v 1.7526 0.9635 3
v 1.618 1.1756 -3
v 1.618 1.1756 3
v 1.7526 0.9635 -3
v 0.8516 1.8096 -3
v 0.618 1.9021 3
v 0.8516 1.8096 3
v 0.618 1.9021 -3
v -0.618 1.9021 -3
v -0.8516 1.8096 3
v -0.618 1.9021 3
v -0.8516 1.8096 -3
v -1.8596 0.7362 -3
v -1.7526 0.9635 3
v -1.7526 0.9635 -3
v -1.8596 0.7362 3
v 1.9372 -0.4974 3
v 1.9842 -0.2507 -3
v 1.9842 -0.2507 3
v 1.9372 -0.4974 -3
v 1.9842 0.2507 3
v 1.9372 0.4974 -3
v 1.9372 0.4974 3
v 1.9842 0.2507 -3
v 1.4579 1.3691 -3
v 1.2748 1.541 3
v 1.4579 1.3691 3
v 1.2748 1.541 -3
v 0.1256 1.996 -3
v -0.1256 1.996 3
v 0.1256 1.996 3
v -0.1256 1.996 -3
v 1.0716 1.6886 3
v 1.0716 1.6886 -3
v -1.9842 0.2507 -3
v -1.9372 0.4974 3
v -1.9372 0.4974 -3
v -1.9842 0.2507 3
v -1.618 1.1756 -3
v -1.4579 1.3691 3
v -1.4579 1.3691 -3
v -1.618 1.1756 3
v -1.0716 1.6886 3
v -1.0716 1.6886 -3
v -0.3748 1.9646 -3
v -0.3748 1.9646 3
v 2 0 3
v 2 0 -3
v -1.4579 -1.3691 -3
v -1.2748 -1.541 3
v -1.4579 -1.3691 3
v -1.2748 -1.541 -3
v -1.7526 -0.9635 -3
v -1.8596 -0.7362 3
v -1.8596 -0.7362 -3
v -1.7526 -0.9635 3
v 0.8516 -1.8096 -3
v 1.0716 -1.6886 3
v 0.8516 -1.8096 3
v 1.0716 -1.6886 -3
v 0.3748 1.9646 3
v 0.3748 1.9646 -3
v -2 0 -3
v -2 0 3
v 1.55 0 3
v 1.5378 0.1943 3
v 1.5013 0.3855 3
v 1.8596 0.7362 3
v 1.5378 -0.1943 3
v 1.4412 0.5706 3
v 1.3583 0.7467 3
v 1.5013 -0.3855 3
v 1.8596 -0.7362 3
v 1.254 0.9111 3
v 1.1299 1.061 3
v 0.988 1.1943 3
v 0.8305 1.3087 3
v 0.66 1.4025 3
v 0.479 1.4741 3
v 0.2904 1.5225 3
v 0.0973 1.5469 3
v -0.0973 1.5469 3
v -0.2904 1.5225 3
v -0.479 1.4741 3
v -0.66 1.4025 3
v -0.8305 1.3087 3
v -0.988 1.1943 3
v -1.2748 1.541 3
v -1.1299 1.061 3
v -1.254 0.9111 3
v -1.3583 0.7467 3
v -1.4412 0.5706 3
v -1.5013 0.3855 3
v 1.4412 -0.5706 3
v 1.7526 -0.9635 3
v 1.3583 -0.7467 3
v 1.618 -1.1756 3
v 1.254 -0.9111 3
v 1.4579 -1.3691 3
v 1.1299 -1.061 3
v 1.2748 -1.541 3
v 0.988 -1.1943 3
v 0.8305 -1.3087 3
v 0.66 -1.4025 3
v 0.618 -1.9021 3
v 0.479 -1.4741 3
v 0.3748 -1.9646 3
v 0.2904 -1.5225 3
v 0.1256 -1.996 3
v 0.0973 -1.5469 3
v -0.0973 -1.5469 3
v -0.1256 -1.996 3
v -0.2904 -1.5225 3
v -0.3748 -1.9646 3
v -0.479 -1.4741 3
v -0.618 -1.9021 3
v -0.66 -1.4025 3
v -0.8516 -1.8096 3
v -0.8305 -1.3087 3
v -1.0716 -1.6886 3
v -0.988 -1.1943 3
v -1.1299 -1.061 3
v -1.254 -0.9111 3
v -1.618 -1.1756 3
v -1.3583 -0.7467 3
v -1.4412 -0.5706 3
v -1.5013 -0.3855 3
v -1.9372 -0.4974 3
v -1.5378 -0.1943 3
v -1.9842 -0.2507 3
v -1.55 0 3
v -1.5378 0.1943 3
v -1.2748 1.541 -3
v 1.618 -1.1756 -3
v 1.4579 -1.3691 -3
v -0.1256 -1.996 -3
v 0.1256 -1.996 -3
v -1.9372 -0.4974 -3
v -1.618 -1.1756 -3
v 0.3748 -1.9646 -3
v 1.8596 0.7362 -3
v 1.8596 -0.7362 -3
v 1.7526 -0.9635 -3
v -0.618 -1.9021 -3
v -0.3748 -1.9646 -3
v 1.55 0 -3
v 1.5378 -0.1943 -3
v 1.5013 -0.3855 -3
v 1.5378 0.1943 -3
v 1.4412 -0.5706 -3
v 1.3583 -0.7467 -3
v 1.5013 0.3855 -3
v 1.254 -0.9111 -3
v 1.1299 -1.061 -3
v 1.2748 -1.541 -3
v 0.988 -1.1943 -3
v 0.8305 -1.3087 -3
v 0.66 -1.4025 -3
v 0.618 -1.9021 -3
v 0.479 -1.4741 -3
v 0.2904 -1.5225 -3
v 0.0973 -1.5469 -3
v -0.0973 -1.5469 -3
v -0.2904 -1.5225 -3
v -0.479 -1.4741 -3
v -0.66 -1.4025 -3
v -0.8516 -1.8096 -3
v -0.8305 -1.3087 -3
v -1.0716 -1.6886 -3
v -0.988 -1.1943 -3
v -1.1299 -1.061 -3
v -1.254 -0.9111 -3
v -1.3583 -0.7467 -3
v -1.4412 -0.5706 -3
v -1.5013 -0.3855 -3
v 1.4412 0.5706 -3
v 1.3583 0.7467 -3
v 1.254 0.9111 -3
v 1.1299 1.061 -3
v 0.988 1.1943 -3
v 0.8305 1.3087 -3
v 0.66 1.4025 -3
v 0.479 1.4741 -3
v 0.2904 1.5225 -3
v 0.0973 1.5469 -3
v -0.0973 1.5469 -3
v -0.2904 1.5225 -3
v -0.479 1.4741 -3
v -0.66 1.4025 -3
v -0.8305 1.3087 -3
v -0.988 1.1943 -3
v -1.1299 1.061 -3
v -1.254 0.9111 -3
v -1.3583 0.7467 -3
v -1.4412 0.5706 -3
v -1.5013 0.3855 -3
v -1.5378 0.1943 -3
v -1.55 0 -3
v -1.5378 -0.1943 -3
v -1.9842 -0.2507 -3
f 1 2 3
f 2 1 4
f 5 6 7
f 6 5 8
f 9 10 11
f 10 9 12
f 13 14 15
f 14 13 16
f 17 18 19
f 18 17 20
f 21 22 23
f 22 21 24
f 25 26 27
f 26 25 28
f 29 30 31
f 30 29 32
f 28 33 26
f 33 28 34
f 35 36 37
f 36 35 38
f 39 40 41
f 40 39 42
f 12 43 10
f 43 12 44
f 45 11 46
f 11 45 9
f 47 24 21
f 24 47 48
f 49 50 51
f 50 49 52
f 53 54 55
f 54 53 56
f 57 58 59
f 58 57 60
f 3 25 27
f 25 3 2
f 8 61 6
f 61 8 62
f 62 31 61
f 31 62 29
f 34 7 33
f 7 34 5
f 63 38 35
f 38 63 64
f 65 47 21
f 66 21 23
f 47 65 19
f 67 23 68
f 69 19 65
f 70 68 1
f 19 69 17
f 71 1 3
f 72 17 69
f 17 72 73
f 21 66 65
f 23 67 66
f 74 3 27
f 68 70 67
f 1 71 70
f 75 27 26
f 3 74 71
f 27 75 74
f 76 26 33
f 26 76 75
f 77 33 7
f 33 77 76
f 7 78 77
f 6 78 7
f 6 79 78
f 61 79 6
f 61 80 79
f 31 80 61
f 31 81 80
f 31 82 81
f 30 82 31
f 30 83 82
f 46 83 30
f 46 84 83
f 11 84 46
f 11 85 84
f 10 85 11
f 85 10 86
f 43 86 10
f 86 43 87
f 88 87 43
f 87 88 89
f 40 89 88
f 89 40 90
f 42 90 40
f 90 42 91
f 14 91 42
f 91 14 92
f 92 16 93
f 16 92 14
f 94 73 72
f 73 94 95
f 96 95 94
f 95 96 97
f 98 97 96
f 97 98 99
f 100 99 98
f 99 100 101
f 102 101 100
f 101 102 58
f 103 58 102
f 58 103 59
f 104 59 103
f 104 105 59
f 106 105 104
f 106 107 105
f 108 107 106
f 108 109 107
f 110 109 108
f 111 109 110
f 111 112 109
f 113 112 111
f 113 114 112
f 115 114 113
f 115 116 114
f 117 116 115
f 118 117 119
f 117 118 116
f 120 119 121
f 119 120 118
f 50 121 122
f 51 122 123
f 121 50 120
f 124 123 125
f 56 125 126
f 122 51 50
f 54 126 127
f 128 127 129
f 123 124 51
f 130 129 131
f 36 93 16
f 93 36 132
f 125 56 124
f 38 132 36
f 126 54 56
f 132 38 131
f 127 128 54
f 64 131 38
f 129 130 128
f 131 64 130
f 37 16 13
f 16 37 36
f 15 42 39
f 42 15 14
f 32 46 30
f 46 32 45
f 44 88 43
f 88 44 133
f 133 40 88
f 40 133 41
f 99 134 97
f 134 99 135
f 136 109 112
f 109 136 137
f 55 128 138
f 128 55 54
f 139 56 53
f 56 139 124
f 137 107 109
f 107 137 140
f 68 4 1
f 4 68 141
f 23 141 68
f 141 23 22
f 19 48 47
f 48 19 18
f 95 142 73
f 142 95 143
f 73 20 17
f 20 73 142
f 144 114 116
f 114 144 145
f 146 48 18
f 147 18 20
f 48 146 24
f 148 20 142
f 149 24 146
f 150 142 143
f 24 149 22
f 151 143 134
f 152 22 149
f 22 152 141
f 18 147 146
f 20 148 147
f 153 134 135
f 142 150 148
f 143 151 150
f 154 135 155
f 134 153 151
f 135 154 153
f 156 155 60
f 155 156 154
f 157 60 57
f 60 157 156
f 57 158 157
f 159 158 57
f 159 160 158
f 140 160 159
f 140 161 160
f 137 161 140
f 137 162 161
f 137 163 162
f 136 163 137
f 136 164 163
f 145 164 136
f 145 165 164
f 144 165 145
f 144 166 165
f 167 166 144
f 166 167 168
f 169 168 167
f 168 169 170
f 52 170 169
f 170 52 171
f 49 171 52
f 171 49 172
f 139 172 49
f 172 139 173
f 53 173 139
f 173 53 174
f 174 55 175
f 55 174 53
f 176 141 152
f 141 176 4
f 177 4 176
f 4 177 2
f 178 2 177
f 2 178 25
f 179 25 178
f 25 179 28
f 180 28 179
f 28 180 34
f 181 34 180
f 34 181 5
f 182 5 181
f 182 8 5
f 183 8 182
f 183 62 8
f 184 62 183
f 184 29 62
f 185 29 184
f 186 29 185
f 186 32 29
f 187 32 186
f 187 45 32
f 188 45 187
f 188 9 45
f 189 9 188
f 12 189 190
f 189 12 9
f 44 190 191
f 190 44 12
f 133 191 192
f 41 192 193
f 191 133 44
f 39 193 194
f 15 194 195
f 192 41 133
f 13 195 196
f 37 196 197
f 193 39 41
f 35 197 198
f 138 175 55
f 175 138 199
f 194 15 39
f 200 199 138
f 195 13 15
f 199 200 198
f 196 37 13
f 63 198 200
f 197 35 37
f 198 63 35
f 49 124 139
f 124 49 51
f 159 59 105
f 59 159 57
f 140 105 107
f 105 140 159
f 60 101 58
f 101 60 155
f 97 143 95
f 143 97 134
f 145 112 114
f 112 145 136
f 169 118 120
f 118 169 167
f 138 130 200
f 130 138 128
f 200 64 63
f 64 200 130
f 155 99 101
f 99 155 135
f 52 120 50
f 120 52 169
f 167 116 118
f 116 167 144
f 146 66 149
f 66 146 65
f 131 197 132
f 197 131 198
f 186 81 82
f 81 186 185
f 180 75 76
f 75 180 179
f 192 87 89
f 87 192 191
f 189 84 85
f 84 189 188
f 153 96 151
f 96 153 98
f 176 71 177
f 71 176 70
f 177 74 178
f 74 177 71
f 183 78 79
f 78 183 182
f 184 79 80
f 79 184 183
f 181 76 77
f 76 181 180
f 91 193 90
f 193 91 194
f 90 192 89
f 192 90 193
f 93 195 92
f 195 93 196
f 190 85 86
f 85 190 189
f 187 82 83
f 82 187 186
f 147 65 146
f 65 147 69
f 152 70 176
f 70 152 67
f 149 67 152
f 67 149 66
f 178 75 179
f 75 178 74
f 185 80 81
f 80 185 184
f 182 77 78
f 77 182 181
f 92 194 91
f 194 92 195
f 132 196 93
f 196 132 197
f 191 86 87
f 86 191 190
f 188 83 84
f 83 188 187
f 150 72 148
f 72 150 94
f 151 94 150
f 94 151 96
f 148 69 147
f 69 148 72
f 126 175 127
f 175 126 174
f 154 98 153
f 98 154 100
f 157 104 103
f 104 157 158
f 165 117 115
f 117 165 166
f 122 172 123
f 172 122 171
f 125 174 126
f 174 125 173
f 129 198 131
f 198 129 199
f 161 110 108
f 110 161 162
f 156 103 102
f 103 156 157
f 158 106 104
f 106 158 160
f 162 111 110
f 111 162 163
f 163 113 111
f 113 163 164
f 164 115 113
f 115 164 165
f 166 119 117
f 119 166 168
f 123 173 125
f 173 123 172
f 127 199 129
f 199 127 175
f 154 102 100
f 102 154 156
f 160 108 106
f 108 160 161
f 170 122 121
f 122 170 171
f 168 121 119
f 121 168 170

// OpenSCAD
$fn = 50;


difference() {
	union() {
		translate(v = [0, 0, -3.0000000000]) {
			cylinder(h = 6, r = 2.0000000000);
		}
	}
	union() {
		translate(v = [0, 0, -100.0000000000]) {
			cylinder(h = 200, r = 1.5500000000);
		}
	}
}
